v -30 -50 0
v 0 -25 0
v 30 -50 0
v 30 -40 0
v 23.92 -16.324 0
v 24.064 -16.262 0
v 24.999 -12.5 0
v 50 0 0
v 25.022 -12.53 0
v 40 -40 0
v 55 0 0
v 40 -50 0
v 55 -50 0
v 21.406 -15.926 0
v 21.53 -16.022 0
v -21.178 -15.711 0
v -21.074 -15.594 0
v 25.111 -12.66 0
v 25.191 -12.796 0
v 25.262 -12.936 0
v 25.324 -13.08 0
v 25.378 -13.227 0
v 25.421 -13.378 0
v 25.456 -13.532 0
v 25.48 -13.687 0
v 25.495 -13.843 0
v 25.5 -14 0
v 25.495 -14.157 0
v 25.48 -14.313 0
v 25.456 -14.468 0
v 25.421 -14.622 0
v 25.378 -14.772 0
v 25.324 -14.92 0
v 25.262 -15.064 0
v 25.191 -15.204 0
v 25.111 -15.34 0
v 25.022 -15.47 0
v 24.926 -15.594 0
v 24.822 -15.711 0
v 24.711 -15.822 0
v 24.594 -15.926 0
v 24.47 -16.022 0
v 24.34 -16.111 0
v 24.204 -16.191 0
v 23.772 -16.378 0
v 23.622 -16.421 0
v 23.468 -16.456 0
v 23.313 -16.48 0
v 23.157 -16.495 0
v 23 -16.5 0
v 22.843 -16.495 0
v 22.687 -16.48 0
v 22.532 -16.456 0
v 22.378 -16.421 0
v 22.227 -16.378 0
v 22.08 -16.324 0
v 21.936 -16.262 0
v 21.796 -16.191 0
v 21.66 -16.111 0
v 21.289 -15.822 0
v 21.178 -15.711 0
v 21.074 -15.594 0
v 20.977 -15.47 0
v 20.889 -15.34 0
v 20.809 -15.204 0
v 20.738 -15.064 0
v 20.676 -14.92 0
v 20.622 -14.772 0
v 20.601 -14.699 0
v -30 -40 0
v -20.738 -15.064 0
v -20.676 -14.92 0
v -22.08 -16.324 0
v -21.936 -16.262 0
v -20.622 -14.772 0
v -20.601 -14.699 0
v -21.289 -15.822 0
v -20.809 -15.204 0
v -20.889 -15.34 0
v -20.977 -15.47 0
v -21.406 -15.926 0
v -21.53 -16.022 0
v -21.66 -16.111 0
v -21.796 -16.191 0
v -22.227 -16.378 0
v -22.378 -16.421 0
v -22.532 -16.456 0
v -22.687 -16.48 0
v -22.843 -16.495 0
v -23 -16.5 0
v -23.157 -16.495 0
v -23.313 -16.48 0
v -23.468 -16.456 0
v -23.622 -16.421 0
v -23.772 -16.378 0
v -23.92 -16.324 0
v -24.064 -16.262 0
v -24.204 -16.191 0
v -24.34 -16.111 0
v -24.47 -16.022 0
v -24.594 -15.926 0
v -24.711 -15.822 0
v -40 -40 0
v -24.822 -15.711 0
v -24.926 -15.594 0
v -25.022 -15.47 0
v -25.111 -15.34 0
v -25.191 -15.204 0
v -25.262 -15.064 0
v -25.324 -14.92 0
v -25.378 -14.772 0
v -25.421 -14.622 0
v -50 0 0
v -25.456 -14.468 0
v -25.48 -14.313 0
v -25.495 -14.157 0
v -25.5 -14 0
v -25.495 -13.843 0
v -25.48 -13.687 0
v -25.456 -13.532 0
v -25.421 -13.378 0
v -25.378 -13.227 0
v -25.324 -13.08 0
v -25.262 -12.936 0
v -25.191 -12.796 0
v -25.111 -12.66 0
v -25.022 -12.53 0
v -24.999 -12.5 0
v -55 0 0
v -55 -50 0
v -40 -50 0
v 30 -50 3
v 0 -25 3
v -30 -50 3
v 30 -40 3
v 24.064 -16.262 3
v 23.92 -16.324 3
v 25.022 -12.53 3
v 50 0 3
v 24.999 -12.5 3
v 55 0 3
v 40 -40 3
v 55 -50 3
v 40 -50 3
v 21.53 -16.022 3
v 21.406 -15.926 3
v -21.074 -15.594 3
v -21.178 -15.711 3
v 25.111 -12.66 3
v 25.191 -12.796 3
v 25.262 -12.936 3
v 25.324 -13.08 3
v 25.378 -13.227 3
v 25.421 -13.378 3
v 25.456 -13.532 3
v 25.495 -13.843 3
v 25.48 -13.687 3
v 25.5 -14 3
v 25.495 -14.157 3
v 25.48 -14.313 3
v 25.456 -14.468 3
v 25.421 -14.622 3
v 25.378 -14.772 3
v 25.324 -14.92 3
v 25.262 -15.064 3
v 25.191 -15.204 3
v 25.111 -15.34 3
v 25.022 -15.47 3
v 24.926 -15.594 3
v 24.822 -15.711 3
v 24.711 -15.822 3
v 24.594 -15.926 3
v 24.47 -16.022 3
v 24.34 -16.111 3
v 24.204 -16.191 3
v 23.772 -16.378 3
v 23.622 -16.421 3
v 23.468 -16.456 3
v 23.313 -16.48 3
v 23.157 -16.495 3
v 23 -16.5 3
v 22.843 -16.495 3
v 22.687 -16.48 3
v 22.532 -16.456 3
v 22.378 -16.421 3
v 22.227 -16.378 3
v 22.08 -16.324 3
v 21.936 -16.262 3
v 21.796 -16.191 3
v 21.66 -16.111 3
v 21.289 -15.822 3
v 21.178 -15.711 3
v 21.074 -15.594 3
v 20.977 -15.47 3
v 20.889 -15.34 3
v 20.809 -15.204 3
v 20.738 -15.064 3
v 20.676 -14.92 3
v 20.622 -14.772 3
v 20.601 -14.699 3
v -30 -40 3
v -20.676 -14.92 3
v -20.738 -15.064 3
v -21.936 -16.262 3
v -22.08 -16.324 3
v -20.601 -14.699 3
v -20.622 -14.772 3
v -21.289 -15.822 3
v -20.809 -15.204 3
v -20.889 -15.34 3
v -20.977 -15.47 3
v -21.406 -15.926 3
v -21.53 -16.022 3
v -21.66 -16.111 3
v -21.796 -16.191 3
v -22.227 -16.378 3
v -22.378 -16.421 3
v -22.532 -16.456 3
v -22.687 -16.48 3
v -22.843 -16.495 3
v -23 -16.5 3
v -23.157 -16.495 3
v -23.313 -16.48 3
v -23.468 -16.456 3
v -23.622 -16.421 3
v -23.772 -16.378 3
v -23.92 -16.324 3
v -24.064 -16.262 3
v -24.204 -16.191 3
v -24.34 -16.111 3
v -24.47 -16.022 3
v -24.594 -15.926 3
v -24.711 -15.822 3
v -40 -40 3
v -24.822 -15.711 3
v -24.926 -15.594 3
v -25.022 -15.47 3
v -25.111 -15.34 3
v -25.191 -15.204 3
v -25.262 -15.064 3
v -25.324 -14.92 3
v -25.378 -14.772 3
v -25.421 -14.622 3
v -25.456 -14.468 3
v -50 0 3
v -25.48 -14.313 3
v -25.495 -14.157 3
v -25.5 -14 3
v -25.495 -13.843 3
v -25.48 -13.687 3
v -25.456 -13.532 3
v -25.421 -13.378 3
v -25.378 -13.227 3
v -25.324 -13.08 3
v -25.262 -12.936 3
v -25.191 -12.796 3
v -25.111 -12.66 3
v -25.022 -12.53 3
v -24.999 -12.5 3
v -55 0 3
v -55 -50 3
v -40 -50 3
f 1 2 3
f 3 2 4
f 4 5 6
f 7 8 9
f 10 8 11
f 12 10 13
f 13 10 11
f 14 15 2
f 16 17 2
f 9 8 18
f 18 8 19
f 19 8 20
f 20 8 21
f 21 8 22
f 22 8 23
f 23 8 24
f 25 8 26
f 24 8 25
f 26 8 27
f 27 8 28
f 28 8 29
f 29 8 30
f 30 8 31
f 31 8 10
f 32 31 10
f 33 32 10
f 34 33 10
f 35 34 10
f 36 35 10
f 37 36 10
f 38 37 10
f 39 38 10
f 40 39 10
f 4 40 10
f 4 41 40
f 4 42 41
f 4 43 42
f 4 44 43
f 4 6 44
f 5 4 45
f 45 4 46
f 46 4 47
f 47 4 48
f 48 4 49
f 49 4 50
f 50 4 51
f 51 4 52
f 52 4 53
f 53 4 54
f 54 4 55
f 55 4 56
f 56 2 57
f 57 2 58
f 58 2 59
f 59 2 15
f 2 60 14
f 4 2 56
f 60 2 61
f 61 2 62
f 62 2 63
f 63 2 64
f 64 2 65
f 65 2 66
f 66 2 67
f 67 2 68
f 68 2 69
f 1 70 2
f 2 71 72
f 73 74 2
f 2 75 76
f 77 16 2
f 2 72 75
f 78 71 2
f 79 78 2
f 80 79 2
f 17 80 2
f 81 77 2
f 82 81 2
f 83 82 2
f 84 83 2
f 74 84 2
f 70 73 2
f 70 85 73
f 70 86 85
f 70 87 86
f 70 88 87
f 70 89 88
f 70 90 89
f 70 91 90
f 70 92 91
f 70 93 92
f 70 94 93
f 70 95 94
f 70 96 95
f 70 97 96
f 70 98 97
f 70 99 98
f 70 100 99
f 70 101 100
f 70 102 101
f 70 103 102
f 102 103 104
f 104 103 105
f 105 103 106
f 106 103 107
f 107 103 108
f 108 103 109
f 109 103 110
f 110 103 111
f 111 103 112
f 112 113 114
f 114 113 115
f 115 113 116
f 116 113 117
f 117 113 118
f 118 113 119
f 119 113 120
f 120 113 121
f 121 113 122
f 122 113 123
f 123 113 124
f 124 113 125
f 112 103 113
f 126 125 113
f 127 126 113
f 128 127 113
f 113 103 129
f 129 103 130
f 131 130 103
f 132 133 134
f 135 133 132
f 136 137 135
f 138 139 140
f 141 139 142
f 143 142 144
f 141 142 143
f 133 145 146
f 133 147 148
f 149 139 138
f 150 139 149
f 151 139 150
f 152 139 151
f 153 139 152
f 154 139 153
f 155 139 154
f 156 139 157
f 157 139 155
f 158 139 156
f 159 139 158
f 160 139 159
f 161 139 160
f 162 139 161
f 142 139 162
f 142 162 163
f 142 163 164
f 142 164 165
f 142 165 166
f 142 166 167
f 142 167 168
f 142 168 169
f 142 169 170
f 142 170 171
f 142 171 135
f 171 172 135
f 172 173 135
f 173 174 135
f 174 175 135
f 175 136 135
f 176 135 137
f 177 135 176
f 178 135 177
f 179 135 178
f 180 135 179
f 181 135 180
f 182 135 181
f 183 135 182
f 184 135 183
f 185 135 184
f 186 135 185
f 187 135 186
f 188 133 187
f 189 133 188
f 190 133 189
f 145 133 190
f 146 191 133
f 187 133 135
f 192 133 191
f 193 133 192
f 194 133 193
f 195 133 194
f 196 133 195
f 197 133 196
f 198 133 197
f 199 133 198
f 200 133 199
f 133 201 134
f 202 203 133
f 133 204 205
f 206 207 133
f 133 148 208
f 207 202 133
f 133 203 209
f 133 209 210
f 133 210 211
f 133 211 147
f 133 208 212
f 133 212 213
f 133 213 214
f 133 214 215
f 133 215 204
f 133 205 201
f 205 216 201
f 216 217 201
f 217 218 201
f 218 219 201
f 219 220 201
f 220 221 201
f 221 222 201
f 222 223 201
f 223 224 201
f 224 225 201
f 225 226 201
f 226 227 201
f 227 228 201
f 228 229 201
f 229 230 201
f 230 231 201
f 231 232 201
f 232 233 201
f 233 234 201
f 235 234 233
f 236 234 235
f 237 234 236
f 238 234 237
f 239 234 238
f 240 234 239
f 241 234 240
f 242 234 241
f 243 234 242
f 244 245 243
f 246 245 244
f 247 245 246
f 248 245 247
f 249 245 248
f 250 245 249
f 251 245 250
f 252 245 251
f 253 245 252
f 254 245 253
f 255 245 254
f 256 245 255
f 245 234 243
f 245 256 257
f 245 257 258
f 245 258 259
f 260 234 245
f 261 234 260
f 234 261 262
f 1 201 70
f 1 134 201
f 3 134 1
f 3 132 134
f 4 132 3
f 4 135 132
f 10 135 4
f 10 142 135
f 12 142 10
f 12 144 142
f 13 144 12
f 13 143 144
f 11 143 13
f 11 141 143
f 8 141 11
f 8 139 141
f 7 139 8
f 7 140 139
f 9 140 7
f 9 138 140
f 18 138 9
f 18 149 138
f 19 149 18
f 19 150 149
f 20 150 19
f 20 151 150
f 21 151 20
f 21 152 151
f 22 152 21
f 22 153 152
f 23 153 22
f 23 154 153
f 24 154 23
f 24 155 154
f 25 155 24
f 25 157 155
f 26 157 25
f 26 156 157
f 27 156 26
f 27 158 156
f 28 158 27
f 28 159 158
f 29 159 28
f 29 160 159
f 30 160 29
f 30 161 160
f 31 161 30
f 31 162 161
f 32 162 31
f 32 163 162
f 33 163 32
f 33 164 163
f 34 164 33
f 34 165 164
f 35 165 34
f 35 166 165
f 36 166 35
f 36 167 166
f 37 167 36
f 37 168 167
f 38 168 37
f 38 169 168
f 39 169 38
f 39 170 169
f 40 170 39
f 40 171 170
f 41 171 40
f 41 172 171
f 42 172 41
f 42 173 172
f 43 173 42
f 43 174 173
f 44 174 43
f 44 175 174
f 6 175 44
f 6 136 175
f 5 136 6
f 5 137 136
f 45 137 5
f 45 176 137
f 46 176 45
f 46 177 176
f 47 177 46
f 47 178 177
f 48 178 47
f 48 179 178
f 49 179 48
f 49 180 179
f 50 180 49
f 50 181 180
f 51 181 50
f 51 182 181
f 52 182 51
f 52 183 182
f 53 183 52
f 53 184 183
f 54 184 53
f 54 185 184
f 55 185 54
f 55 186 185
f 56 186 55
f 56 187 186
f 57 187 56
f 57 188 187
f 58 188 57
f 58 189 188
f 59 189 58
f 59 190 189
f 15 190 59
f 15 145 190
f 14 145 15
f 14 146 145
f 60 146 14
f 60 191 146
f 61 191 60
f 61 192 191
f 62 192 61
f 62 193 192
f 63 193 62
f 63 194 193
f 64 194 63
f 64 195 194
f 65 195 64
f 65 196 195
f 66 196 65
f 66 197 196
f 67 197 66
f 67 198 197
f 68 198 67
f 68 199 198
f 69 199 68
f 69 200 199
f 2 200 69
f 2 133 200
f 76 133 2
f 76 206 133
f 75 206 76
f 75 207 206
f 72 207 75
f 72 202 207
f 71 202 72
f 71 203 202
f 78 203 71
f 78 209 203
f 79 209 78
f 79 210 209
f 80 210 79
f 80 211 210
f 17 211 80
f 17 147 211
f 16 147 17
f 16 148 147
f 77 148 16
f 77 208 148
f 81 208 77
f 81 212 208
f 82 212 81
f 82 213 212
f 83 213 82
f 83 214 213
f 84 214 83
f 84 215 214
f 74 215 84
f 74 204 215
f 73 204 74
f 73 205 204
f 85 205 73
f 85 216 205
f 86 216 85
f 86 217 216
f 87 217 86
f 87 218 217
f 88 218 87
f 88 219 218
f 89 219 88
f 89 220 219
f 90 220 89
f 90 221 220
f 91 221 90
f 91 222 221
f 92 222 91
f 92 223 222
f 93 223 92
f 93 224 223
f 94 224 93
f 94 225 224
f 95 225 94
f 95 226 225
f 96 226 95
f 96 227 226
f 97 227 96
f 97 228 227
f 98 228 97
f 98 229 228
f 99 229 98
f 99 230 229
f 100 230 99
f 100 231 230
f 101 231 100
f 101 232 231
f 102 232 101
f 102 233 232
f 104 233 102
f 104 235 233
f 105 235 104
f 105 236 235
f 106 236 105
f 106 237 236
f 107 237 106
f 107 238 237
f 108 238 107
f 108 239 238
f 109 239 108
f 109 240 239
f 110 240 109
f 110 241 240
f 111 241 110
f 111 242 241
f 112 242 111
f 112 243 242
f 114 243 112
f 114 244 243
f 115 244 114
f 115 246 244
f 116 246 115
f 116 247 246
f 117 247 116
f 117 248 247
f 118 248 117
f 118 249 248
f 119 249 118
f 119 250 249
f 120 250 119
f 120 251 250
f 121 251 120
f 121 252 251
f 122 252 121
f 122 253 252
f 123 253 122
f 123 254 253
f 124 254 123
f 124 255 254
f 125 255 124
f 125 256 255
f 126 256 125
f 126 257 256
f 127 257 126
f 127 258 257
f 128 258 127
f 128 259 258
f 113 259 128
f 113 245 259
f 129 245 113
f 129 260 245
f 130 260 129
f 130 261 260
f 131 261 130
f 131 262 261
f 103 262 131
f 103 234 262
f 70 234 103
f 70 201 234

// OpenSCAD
$fn=100;
linear_extrude(3)
difference(){
	translate([-110/2, -50])square([110, 50]);
	union(){
		polygon([[-50, 0], [50, 0], [0, -25]]);
		translate([23, -14])circle(d=5);
		translate([-23, -14])circle(d=5);
	}
	translate([30, -50])square([10,10]);
	translate([-40, -50])square([10,10]);
}
